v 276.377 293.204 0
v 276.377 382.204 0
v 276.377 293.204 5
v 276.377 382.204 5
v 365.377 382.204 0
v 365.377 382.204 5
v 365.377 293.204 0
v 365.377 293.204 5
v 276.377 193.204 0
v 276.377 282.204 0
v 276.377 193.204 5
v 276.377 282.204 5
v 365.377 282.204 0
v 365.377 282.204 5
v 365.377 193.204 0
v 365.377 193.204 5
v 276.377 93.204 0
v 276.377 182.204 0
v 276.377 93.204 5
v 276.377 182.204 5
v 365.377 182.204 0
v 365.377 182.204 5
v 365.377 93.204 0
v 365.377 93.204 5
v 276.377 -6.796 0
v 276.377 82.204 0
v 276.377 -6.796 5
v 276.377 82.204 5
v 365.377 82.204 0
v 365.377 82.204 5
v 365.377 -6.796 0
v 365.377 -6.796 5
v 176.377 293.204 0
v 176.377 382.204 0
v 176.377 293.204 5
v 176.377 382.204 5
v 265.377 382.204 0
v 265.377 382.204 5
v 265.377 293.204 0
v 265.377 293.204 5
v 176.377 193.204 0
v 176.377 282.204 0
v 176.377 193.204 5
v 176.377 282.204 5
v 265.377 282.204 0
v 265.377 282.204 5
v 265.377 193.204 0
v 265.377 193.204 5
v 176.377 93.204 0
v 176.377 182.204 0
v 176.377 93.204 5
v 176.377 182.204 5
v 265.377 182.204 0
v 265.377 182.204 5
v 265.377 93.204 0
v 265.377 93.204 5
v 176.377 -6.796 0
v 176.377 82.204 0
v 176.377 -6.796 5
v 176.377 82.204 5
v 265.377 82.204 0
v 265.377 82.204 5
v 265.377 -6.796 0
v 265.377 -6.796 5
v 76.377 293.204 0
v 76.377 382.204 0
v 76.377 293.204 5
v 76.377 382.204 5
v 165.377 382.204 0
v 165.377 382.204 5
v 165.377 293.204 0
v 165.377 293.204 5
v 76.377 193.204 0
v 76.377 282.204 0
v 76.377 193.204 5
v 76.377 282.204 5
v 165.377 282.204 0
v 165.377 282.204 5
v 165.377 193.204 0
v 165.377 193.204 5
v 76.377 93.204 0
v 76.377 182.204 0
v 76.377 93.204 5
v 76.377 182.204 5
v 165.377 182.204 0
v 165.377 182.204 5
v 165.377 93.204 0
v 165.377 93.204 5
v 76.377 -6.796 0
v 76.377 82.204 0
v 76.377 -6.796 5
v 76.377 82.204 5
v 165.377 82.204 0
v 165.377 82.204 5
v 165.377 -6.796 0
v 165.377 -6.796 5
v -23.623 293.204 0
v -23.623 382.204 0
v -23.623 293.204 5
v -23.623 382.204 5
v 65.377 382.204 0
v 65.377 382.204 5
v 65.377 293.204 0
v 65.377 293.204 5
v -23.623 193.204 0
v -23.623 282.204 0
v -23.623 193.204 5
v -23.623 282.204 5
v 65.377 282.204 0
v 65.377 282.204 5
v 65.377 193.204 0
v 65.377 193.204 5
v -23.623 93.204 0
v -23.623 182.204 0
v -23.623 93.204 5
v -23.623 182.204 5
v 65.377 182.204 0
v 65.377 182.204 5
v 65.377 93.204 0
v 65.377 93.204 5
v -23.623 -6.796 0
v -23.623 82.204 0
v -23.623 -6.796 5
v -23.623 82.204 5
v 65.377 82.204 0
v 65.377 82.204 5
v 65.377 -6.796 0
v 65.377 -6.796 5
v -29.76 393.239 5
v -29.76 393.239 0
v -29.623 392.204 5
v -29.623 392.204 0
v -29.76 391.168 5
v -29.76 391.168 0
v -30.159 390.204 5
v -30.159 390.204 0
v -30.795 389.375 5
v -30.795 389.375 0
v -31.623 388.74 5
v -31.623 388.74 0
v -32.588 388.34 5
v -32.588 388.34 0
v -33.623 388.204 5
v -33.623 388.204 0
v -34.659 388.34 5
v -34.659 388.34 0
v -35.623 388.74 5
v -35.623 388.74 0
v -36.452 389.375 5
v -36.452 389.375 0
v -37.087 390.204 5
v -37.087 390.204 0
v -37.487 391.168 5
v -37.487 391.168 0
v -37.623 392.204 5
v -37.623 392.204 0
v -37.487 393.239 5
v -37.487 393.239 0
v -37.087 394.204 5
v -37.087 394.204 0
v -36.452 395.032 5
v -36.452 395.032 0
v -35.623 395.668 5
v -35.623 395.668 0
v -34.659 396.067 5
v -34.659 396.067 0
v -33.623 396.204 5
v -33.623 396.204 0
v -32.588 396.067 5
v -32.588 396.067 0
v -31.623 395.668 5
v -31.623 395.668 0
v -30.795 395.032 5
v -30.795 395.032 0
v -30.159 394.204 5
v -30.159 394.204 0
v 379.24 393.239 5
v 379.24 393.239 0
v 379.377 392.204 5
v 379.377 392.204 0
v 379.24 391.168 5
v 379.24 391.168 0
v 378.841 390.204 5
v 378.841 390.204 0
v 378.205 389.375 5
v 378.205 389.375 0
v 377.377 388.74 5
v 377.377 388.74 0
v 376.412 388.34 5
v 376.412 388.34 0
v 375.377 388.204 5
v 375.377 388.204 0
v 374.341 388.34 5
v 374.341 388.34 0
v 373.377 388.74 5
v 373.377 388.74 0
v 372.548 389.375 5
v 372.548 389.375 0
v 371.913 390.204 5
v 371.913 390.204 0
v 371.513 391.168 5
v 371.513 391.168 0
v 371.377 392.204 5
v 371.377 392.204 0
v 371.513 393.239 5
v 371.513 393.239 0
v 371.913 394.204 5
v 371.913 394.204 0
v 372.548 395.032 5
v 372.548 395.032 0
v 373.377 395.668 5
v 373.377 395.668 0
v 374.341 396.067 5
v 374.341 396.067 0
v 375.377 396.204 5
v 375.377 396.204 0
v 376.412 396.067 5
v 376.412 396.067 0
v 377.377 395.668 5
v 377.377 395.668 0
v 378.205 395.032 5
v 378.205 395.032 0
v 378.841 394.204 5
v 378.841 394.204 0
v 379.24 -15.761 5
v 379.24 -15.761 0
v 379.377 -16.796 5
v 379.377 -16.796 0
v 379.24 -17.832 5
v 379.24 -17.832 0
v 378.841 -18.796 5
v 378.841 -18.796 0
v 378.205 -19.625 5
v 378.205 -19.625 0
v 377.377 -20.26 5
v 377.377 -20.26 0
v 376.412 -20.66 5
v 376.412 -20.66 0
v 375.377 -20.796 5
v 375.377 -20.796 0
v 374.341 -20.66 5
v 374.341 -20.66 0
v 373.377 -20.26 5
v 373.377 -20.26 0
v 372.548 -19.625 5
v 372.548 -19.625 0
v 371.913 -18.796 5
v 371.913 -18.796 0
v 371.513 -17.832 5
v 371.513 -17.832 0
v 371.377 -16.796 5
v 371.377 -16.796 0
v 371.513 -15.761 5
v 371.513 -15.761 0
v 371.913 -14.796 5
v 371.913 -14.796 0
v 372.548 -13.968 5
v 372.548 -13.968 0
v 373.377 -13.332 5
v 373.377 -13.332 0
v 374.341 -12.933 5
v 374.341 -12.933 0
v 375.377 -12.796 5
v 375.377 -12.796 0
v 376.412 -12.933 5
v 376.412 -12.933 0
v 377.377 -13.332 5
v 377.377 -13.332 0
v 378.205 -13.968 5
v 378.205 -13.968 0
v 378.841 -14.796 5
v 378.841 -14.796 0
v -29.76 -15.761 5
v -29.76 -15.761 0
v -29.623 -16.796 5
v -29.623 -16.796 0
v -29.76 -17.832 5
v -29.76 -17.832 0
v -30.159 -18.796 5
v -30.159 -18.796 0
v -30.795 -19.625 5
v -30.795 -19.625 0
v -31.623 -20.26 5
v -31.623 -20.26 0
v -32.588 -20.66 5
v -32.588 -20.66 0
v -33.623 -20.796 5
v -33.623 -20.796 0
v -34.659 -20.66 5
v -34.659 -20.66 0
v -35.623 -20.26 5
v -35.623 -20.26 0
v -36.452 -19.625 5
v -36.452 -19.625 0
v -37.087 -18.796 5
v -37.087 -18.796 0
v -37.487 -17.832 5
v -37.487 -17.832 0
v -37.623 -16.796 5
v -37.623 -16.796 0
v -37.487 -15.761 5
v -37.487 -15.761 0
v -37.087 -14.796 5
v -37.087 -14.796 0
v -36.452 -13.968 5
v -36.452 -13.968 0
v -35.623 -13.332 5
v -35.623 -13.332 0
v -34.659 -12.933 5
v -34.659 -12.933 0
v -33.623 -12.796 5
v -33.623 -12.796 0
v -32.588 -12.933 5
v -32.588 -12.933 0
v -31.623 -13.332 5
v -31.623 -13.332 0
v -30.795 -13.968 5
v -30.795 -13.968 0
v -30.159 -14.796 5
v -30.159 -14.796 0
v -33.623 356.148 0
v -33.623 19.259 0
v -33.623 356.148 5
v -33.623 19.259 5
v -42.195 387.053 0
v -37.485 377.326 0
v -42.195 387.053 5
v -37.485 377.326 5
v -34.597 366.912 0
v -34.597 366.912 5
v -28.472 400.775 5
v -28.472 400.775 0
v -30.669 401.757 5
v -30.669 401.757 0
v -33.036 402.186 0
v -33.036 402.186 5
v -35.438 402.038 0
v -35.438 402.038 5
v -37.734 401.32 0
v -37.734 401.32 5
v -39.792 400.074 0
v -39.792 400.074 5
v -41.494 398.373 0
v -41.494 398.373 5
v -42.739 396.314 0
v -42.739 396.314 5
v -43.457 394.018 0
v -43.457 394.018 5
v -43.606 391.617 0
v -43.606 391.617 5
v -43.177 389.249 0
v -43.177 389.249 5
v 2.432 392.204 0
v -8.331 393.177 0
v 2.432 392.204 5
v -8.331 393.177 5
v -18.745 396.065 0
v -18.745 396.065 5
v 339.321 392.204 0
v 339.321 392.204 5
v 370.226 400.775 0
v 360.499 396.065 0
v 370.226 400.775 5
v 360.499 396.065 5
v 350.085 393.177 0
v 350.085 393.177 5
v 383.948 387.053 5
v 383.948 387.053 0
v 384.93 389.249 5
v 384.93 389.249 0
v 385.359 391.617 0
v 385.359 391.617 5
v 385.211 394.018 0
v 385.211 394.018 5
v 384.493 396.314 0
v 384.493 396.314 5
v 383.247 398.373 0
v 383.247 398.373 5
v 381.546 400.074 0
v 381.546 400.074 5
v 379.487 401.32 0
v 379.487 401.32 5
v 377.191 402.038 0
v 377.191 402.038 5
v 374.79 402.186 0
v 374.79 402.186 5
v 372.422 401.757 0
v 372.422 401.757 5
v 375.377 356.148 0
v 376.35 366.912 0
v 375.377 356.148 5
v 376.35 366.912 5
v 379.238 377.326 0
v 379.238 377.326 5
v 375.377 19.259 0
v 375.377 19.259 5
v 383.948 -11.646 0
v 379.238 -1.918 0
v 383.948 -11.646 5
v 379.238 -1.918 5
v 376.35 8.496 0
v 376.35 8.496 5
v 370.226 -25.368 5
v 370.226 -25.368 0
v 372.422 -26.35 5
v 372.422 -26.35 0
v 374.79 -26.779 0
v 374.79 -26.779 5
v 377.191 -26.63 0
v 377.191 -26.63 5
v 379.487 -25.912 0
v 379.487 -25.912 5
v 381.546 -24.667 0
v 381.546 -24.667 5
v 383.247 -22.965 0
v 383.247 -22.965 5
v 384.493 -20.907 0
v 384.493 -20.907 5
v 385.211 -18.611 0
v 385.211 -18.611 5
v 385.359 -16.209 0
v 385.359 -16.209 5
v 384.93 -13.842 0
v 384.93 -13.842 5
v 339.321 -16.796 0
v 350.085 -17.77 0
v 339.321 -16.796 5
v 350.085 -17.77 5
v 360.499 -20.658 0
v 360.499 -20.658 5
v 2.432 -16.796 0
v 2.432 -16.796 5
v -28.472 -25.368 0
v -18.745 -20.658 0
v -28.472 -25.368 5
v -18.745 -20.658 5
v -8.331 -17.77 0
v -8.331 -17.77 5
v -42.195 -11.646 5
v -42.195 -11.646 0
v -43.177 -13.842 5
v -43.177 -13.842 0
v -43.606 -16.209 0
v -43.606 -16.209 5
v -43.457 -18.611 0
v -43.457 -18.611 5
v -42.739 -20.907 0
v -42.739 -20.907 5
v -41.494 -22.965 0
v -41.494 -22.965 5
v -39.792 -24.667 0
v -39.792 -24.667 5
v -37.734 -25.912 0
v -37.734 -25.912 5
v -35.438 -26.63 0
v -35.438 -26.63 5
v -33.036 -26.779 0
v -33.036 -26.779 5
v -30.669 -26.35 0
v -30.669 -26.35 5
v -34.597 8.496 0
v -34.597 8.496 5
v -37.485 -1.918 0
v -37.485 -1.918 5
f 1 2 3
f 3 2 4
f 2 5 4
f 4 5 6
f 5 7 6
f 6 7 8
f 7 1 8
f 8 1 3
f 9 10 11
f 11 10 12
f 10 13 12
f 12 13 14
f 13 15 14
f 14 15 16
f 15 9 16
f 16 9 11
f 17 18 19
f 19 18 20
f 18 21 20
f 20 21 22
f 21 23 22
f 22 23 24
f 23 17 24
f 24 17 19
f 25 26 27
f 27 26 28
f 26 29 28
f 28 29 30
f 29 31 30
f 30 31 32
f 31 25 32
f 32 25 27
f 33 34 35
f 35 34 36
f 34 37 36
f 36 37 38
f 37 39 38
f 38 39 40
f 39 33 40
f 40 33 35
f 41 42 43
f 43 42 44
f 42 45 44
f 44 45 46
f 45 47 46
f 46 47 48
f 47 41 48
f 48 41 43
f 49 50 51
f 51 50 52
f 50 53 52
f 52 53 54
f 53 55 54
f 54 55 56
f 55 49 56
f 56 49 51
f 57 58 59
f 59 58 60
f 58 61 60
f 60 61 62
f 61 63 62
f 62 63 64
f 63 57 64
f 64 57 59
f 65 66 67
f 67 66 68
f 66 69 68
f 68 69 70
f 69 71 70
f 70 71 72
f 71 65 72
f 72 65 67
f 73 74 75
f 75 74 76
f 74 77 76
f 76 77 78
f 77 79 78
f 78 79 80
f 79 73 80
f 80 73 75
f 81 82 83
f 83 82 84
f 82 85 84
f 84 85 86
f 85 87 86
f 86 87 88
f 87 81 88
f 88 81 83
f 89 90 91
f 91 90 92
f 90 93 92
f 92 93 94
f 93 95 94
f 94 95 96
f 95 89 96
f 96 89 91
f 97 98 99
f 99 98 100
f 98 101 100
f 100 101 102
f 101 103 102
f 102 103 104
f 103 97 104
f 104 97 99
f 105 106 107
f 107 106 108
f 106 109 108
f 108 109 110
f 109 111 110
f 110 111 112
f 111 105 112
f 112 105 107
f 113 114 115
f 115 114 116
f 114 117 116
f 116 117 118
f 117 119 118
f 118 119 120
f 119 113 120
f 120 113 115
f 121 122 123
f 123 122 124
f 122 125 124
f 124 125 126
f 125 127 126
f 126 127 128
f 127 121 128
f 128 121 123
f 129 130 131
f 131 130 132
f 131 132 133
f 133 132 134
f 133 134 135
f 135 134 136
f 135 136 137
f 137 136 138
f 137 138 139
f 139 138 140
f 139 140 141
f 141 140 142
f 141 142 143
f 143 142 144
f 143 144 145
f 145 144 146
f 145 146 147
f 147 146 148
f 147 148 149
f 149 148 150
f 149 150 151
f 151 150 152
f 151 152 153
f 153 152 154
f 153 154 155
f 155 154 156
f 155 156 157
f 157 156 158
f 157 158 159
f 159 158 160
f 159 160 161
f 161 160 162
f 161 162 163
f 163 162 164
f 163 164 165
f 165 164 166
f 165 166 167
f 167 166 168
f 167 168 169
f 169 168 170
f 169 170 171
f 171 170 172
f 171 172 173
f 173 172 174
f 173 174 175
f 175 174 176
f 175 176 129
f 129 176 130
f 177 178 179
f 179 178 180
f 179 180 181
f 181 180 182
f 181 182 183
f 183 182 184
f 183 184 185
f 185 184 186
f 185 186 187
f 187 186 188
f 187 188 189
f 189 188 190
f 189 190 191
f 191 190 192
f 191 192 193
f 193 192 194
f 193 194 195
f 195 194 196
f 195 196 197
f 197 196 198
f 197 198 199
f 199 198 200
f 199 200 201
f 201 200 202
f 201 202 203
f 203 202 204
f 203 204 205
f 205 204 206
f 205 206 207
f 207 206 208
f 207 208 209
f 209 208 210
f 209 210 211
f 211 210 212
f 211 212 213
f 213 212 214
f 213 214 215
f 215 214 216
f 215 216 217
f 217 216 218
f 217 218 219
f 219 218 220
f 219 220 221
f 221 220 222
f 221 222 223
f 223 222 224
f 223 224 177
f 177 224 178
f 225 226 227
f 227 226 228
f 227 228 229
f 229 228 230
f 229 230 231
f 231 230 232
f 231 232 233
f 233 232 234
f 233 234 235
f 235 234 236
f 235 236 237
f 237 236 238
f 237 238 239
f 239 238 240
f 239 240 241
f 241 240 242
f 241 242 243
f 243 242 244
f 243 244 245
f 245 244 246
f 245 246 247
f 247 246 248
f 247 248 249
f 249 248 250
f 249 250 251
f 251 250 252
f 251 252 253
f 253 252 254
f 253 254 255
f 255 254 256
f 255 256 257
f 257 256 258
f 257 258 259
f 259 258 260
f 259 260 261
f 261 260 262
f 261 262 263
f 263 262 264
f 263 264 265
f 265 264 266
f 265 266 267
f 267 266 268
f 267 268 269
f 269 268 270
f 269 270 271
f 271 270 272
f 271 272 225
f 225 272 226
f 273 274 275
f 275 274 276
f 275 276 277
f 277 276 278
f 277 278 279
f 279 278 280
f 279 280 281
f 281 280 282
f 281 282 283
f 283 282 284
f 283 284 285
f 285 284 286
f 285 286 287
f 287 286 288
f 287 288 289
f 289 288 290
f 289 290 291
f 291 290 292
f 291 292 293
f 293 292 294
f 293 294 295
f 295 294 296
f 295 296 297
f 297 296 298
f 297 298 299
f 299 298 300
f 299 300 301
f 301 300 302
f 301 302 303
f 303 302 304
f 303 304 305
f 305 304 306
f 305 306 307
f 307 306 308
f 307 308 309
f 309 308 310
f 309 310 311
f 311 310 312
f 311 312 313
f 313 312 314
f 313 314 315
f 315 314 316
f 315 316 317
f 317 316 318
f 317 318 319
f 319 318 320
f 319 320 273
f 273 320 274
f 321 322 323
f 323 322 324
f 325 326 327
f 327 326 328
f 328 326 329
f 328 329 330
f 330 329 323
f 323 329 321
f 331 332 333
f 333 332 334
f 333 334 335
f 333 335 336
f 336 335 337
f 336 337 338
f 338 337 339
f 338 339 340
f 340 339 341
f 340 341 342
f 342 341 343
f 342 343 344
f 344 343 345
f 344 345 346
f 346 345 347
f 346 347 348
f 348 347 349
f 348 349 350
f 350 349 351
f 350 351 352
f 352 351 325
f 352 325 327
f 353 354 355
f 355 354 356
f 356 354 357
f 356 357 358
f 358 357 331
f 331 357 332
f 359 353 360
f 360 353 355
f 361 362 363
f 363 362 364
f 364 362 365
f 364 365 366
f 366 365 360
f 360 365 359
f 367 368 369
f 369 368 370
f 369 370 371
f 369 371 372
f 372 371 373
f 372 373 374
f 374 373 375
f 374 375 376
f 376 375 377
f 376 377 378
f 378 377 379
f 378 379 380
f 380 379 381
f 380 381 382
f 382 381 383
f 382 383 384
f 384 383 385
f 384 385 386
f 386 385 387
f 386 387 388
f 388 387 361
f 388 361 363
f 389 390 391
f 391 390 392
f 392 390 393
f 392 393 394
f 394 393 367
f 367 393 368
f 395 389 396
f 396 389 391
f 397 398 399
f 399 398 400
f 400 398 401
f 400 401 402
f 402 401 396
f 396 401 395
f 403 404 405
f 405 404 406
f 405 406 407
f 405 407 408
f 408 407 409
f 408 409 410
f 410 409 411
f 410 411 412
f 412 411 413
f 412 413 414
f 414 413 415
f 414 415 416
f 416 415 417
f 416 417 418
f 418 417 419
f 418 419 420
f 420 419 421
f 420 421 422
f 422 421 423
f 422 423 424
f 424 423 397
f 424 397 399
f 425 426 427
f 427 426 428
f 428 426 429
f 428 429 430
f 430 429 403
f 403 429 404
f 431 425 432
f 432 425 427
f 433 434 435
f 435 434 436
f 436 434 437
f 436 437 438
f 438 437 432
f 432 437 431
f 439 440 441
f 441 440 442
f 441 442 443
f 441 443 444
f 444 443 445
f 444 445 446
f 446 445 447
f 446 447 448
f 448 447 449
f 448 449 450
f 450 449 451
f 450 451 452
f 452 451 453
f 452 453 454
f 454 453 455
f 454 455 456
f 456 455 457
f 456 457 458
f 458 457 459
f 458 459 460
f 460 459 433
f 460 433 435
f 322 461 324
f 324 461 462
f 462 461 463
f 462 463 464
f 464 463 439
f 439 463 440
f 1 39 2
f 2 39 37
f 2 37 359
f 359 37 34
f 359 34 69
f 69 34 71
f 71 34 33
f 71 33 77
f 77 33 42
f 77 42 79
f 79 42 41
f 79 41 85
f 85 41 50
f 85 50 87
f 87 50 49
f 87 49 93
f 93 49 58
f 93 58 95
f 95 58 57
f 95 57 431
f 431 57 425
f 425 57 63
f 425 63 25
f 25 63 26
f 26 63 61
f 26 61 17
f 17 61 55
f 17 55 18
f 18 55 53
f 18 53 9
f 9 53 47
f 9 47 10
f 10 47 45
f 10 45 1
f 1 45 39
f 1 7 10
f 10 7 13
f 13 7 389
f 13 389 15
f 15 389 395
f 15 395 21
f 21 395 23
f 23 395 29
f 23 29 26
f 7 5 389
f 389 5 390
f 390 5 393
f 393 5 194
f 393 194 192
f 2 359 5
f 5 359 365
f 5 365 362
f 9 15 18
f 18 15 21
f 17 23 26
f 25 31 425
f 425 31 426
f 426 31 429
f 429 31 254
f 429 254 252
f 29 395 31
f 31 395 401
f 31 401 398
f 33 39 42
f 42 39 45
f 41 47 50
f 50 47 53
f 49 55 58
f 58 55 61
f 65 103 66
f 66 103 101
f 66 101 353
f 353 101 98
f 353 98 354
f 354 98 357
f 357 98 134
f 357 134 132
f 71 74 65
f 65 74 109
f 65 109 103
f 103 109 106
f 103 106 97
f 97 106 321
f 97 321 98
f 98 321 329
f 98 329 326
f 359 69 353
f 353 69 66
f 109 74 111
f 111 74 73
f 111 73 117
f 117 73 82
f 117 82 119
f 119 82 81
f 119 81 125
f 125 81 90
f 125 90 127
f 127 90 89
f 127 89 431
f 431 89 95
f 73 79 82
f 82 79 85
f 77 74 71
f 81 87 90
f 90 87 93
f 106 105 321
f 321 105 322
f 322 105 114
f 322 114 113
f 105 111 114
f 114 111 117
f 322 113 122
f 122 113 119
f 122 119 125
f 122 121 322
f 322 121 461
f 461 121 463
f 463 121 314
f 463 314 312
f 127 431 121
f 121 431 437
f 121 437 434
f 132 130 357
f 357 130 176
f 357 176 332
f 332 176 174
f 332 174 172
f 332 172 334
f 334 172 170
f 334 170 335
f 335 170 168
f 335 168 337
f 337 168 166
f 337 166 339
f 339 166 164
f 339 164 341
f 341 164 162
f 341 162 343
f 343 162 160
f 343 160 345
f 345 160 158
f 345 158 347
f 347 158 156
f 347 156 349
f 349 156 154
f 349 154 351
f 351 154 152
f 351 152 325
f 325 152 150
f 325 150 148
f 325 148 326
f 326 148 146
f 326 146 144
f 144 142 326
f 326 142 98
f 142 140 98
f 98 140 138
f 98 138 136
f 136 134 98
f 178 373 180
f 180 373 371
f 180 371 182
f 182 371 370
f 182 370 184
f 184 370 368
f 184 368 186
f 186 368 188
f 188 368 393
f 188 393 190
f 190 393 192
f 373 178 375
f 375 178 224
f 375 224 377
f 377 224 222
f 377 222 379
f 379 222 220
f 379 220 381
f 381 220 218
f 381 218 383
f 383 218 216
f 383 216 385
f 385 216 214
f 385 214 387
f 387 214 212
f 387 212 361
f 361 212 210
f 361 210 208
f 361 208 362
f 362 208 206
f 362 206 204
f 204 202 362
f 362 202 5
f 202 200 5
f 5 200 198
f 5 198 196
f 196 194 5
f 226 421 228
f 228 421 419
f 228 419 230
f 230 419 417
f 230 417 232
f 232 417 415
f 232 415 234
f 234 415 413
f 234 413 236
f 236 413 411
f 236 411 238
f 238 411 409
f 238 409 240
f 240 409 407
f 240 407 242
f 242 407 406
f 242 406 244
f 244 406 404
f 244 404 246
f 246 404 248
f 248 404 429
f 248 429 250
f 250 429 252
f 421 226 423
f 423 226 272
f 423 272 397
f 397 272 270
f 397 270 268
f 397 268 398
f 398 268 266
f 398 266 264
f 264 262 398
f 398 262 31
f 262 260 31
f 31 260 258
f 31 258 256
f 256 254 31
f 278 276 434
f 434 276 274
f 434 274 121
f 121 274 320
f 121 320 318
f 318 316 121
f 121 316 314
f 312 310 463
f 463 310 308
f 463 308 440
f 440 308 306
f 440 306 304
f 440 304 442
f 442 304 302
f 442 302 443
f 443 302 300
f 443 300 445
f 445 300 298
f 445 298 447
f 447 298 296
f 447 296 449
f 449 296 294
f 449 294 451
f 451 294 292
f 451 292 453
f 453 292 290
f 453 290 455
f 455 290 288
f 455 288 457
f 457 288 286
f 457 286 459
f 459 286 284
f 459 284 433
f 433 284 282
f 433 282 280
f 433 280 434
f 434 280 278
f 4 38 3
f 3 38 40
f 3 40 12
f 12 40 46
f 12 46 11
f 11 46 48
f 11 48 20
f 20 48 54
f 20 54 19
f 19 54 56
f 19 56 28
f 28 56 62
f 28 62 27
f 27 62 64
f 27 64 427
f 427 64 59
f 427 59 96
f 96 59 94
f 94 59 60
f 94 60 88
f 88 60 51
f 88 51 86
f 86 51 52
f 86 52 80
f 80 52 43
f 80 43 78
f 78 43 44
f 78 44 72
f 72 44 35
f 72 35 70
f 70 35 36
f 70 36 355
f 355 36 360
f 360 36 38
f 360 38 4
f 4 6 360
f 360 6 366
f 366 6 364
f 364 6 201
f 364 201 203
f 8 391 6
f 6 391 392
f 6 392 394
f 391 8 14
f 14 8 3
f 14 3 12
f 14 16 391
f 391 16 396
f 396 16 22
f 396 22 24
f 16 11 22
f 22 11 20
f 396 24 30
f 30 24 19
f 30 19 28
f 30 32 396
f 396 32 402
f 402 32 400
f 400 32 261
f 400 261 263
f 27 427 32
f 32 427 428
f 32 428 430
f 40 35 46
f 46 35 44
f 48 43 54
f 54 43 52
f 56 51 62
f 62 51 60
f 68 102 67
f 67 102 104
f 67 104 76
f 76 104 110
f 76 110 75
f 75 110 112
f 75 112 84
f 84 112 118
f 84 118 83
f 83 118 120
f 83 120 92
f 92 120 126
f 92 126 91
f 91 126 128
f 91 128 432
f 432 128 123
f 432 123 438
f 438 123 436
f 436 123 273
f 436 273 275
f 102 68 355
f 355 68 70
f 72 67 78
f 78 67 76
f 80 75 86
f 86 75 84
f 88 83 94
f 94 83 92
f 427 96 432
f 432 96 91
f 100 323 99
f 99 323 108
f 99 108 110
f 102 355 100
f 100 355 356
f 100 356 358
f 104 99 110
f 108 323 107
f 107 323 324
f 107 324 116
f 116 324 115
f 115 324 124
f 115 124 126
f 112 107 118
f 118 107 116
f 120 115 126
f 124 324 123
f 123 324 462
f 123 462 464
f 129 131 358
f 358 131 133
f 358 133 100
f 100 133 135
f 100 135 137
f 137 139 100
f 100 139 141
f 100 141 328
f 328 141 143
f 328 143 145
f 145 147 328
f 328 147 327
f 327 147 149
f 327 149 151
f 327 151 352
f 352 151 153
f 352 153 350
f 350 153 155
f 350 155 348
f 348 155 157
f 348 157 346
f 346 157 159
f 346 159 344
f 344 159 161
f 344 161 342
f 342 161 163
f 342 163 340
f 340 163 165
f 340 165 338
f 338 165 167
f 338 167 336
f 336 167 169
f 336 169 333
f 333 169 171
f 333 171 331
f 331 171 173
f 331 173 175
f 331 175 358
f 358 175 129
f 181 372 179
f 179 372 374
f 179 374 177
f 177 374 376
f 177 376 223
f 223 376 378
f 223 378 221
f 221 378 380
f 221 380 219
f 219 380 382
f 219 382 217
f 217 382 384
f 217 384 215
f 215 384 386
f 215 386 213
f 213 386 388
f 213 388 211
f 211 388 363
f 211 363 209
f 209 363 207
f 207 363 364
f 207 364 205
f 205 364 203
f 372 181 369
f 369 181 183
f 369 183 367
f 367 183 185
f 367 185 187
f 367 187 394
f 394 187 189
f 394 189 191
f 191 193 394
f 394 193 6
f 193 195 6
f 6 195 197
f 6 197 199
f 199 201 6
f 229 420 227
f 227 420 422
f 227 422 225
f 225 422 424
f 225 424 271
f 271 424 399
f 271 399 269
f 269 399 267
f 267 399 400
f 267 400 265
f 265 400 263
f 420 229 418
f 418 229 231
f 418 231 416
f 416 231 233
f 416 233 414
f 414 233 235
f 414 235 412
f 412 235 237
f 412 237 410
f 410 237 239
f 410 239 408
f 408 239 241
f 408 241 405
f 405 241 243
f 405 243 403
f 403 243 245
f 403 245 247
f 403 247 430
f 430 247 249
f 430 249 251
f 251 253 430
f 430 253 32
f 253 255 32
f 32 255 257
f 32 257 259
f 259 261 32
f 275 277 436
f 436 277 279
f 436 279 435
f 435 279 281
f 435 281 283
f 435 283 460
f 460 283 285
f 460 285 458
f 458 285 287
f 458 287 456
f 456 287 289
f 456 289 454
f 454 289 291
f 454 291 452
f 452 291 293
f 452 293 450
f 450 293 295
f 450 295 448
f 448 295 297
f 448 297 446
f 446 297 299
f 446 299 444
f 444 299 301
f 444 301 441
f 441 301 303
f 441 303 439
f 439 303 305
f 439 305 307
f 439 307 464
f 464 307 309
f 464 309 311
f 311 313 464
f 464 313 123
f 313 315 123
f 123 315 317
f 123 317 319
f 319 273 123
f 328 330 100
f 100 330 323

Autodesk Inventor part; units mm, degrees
ref_plane "YZ Plane" through (0, 0, 0) normal (1, 0, 0) x (0, 1, 0)
ref_plane "XZ Plane" through (0, 0, 0) normal (0, 1, 0) x (-1, 0, 0)
ref_plane "XY Plane" through (0, 0, 0) normal (0, 0, 1) x (1, 0, 0)
sketch "Sketch1" plane through (0, 0, 0) normal (0, 0, 1) x (1, 0, 0)
  line L0 (-23.6233, -6.7963) -> (65.3767, -6.7963)
  line L1 (65.3767, -6.7963) -> (65.3767, 82.2037)
  line L2 (65.3767, 82.2037) -> (-23.6233, 82.2037)
  line L3 (-23.6233, 82.2037) -> (-23.6233, -6.7963)
  line L4 (-23.6233, 93.2037) -> (65.3767, 93.2037)
  line L5 (65.3767, 93.2037) -> (65.3767, 182.2037)
  line L6 (65.3767, 182.2037) -> (-23.6233, 182.2037)
  line L7 (-23.6233, 182.2037) -> (-23.6233, 93.2037)
  line L8 (-23.6233, 193.2037) -> (65.3767, 193.2037)
  line L9 (65.3767, 193.2037) -> (65.3767, 282.2037)
  line L10 (65.3767, 282.2037) -> (-23.6233, 282.2037)
  line L11 (-23.6233, 282.2037) -> (-23.6233, 193.2037)
  line L12 (-23.6233, 293.2037) -> (65.3767, 293.2037)
  line L13 (65.3767, 293.2037) -> (65.3767, 382.2037)
  line L14 (65.3767, 382.2037) -> (-23.6233, 382.2037)
  line L15 (-23.6233, 382.2037) -> (-23.6233, 293.2037)
  line L16 (76.3767, -6.7963) -> (165.3767, -6.7963)
  line L17 (165.3767, -6.7963) -> (165.3767, 82.2037)
  line L18 (165.3767, 82.2037) -> (76.3767, 82.2037)
  line L19 (76.3767, 82.2037) -> (76.3767, -6.7963)
  line L20 (76.3767, 93.2037) -> (165.3767, 93.2037)
  line L21 (165.3767, 93.2037) -> (165.3767, 182.2037)
  line L22 (165.3767, 182.2037) -> (76.3767, 182.2037)
  line L23 (76.3767, 182.2037) -> (76.3767, 93.2037)
  line L24 (76.3767, 193.2037) -> (165.3767, 193.2037)
  line L25 (165.3767, 193.2037) -> (165.3767, 282.2037)
  line L26 (165.3767, 282.2037) -> (76.3767, 282.2037)
  line L27 (76.3767, 282.2037) -> (76.3767, 193.2037)
  line L28 (76.3767, 293.2037) -> (165.3767, 293.2037)
  line L29 (165.3767, 293.2037) -> (165.3767, 382.2037)
  line L30 (165.3767, 382.2037) -> (76.3767, 382.2037)
  line L31 (76.3767, 382.2037) -> (76.3767, 293.2037)
  line L32 (176.3767, -6.7963) -> (265.3767, -6.7963)
  line L33 (265.3767, -6.7963) -> (265.3767, 82.2037)
  line L34 (265.3767, 82.2037) -> (176.3767, 82.2037)
  line L35 (176.3767, 82.2037) -> (176.3767, -6.7963)
  line L36 (176.3767, 93.2037) -> (265.3767, 93.2037)
  line L37 (265.3767, 93.2037) -> (265.3767, 182.2037)
  line L38 (265.3767, 182.2037) -> (176.3767, 182.2037)
  line L39 (176.3767, 182.2037) -> (176.3767, 93.2037)
  line L40 (176.3767, 193.2037) -> (265.3767, 193.2037)
  line L41 (265.3767, 193.2037) -> (265.3767, 282.2037)
  line L42 (265.3767, 282.2037) -> (176.3767, 282.2037)
  line L43 (176.3767, 282.2037) -> (176.3767, 193.2037)
  line L44 (176.3767, 293.2037) -> (265.3767, 293.2037)
  line L45 (265.3767, 293.2037) -> (265.3767, 382.2037)
  line L46 (265.3767, 382.2037) -> (176.3767, 382.2037)
  line L47 (176.3767, 382.2037) -> (176.3767, 293.2037)
  line L48 (276.3767, -6.7963) -> (365.3767, -6.7963)
  line L49 (365.3767, -6.7963) -> (365.3767, 82.2037)
  line L50 (365.3767, 82.2037) -> (276.3767, 82.2037)
  line L51 (276.3767, 82.2037) -> (276.3767, -6.7963)
  line L52 (276.3767, 93.2037) -> (365.3767, 93.2037)
  line L53 (365.3767, 93.2037) -> (365.3767, 182.2037)
  line L54 (365.3767, 182.2037) -> (276.3767, 182.2037)
  line L55 (276.3767, 182.2037) -> (276.3767, 93.2037)
  line L56 (276.3767, 193.2037) -> (365.3767, 193.2037)
  line L57 (365.3767, 193.2037) -> (365.3767, 282.2037)
  line L58 (365.3767, 282.2037) -> (276.3767, 282.2037)
  line L59 (276.3767, 282.2037) -> (276.3767, 193.2037)
  line L60 (276.3767, 293.2037) -> (365.3767, 293.2037)
  line L61 (365.3767, 293.2037) -> (365.3767, 382.2037)
  line L62 (365.3767, 382.2037) -> (276.3767, 382.2037)
  line L63 (276.3767, 382.2037) -> (276.3767, 293.2037)
  circle A0 centre (-33.6233, -16.7963) radius 4
  arc A1 (-42.1947, -11.6455) -> (-33.6233, 19.2592) centre (-93.6233, 19.2592) ccw
  arc A2 (2.4322, -16.7963) -> (-28.4725, -25.3677) centre (2.4322, -76.7963) ccw
  arc A3 (-42.1947, -11.6455) -> (-28.4725, -25.3677) centre (-33.6233, -16.7963) ccw
  arc A4 (375.3767, 19.2592) -> (383.9481, -11.6455) centre (435.3767, 19.2592) ccw
  circle A5 centre (375.3767, -16.7963) radius 4
  arc A6 (370.2259, -25.3677) -> (383.9481, -11.6455) centre (375.3767, -16.7963) ccw
  arc A7 (370.2259, -25.3677) -> (339.3212, -16.7963) centre (339.3212, -76.7963) ccw
  arc A8 (339.3212, 392.2037) -> (370.2259, 400.7751) centre (339.3212, 452.2037) ccw
  circle A9 centre (375.3767, 392.2037) radius 4
  arc A10 (383.9481, 387.0529) -> (370.2259, 400.7751) centre (375.3767, 392.2037) ccw
  arc A11 (383.9481, 387.0529) -> (375.3767, 356.1482) centre (435.3767, 356.1482) ccw
  arc A12 (-33.6233, 356.1482) -> (-42.1947, 387.0529) centre (-93.6233, 356.1482) ccw
  circle A13 centre (-33.6233, 392.2037) radius 4
  arc A14 (-28.4725, 400.7751) -> (-42.1947, 387.0529) centre (-33.6233, 392.2037) ccw
  arc A15 (-28.4725, 400.7751) -> (2.4322, 392.2037) centre (2.4322, 452.2037) ccw
  line L64 (2.4322, -16.7963) -> (339.3212, -16.7963)
  line L65 (375.3767, 19.2592) -> (375.3767, 356.1482)
  line L66 (-33.6233, 356.1482) -> (-33.6233, 19.2592)
  line L67 (339.3212, 392.2037) -> (2.4322, 392.2037)
  point P0 (0, 0)
  point P1 (0, 100)
  point P2 (0, 200)
  point P3 (0, 300)
  point P4 (100, 0)
  point P5 (100, 100)
  point P6 (100, 200)
  point P7 (100, 300)
  point P8 (200, 0)
  point P9 (200, 100)
  point P10 (200, 200)
  point P11 (200, 300)
  point P12 (300, 0)
  point P13 (300, 100)
  point P14 (300, 200)
  point P15 (300, 300)
  point P16 (170.8767, 187.7037)
  dimension "d0" = 89
  dimension "d1" = 89
  dimension "d4" = 100
  dimension "d7" = 100
  dimension "d10" = 8
  dimension "d11" = 10
  dimension "d12" = 10
  dimension "d17" = 60
  dimension "d18" = 60
  dimension "d21" = 360
extrude "Extrusion1" add sketch "Sketch1" along normal blind 5
sketch "Sketch2" plane through (0, 0, 5) normal (0, 0, 1) x (1, 0, 0)
  line L0 (165.3767, 182.2037) -> (165.3767, 93.2037) projected
  line L1 (265.3767, 193.2037) -> (176.3767, 193.2037) projected
  line L2 (165.3767, 182.2037) -> (176.3767, 182.2037)
  line L3 (176.3767, 182.2037) -> (176.3767, 193.2037)
  line L4 (176.3767, 193.2037) -> (165.3767, 193.2037)
  line L5 (165.3767, 193.2037) -> (165.3767, 182.2037)
  point P0 (0, 0)
  point P1 (170.8767, 187.7037)
properties part number "b-base"
